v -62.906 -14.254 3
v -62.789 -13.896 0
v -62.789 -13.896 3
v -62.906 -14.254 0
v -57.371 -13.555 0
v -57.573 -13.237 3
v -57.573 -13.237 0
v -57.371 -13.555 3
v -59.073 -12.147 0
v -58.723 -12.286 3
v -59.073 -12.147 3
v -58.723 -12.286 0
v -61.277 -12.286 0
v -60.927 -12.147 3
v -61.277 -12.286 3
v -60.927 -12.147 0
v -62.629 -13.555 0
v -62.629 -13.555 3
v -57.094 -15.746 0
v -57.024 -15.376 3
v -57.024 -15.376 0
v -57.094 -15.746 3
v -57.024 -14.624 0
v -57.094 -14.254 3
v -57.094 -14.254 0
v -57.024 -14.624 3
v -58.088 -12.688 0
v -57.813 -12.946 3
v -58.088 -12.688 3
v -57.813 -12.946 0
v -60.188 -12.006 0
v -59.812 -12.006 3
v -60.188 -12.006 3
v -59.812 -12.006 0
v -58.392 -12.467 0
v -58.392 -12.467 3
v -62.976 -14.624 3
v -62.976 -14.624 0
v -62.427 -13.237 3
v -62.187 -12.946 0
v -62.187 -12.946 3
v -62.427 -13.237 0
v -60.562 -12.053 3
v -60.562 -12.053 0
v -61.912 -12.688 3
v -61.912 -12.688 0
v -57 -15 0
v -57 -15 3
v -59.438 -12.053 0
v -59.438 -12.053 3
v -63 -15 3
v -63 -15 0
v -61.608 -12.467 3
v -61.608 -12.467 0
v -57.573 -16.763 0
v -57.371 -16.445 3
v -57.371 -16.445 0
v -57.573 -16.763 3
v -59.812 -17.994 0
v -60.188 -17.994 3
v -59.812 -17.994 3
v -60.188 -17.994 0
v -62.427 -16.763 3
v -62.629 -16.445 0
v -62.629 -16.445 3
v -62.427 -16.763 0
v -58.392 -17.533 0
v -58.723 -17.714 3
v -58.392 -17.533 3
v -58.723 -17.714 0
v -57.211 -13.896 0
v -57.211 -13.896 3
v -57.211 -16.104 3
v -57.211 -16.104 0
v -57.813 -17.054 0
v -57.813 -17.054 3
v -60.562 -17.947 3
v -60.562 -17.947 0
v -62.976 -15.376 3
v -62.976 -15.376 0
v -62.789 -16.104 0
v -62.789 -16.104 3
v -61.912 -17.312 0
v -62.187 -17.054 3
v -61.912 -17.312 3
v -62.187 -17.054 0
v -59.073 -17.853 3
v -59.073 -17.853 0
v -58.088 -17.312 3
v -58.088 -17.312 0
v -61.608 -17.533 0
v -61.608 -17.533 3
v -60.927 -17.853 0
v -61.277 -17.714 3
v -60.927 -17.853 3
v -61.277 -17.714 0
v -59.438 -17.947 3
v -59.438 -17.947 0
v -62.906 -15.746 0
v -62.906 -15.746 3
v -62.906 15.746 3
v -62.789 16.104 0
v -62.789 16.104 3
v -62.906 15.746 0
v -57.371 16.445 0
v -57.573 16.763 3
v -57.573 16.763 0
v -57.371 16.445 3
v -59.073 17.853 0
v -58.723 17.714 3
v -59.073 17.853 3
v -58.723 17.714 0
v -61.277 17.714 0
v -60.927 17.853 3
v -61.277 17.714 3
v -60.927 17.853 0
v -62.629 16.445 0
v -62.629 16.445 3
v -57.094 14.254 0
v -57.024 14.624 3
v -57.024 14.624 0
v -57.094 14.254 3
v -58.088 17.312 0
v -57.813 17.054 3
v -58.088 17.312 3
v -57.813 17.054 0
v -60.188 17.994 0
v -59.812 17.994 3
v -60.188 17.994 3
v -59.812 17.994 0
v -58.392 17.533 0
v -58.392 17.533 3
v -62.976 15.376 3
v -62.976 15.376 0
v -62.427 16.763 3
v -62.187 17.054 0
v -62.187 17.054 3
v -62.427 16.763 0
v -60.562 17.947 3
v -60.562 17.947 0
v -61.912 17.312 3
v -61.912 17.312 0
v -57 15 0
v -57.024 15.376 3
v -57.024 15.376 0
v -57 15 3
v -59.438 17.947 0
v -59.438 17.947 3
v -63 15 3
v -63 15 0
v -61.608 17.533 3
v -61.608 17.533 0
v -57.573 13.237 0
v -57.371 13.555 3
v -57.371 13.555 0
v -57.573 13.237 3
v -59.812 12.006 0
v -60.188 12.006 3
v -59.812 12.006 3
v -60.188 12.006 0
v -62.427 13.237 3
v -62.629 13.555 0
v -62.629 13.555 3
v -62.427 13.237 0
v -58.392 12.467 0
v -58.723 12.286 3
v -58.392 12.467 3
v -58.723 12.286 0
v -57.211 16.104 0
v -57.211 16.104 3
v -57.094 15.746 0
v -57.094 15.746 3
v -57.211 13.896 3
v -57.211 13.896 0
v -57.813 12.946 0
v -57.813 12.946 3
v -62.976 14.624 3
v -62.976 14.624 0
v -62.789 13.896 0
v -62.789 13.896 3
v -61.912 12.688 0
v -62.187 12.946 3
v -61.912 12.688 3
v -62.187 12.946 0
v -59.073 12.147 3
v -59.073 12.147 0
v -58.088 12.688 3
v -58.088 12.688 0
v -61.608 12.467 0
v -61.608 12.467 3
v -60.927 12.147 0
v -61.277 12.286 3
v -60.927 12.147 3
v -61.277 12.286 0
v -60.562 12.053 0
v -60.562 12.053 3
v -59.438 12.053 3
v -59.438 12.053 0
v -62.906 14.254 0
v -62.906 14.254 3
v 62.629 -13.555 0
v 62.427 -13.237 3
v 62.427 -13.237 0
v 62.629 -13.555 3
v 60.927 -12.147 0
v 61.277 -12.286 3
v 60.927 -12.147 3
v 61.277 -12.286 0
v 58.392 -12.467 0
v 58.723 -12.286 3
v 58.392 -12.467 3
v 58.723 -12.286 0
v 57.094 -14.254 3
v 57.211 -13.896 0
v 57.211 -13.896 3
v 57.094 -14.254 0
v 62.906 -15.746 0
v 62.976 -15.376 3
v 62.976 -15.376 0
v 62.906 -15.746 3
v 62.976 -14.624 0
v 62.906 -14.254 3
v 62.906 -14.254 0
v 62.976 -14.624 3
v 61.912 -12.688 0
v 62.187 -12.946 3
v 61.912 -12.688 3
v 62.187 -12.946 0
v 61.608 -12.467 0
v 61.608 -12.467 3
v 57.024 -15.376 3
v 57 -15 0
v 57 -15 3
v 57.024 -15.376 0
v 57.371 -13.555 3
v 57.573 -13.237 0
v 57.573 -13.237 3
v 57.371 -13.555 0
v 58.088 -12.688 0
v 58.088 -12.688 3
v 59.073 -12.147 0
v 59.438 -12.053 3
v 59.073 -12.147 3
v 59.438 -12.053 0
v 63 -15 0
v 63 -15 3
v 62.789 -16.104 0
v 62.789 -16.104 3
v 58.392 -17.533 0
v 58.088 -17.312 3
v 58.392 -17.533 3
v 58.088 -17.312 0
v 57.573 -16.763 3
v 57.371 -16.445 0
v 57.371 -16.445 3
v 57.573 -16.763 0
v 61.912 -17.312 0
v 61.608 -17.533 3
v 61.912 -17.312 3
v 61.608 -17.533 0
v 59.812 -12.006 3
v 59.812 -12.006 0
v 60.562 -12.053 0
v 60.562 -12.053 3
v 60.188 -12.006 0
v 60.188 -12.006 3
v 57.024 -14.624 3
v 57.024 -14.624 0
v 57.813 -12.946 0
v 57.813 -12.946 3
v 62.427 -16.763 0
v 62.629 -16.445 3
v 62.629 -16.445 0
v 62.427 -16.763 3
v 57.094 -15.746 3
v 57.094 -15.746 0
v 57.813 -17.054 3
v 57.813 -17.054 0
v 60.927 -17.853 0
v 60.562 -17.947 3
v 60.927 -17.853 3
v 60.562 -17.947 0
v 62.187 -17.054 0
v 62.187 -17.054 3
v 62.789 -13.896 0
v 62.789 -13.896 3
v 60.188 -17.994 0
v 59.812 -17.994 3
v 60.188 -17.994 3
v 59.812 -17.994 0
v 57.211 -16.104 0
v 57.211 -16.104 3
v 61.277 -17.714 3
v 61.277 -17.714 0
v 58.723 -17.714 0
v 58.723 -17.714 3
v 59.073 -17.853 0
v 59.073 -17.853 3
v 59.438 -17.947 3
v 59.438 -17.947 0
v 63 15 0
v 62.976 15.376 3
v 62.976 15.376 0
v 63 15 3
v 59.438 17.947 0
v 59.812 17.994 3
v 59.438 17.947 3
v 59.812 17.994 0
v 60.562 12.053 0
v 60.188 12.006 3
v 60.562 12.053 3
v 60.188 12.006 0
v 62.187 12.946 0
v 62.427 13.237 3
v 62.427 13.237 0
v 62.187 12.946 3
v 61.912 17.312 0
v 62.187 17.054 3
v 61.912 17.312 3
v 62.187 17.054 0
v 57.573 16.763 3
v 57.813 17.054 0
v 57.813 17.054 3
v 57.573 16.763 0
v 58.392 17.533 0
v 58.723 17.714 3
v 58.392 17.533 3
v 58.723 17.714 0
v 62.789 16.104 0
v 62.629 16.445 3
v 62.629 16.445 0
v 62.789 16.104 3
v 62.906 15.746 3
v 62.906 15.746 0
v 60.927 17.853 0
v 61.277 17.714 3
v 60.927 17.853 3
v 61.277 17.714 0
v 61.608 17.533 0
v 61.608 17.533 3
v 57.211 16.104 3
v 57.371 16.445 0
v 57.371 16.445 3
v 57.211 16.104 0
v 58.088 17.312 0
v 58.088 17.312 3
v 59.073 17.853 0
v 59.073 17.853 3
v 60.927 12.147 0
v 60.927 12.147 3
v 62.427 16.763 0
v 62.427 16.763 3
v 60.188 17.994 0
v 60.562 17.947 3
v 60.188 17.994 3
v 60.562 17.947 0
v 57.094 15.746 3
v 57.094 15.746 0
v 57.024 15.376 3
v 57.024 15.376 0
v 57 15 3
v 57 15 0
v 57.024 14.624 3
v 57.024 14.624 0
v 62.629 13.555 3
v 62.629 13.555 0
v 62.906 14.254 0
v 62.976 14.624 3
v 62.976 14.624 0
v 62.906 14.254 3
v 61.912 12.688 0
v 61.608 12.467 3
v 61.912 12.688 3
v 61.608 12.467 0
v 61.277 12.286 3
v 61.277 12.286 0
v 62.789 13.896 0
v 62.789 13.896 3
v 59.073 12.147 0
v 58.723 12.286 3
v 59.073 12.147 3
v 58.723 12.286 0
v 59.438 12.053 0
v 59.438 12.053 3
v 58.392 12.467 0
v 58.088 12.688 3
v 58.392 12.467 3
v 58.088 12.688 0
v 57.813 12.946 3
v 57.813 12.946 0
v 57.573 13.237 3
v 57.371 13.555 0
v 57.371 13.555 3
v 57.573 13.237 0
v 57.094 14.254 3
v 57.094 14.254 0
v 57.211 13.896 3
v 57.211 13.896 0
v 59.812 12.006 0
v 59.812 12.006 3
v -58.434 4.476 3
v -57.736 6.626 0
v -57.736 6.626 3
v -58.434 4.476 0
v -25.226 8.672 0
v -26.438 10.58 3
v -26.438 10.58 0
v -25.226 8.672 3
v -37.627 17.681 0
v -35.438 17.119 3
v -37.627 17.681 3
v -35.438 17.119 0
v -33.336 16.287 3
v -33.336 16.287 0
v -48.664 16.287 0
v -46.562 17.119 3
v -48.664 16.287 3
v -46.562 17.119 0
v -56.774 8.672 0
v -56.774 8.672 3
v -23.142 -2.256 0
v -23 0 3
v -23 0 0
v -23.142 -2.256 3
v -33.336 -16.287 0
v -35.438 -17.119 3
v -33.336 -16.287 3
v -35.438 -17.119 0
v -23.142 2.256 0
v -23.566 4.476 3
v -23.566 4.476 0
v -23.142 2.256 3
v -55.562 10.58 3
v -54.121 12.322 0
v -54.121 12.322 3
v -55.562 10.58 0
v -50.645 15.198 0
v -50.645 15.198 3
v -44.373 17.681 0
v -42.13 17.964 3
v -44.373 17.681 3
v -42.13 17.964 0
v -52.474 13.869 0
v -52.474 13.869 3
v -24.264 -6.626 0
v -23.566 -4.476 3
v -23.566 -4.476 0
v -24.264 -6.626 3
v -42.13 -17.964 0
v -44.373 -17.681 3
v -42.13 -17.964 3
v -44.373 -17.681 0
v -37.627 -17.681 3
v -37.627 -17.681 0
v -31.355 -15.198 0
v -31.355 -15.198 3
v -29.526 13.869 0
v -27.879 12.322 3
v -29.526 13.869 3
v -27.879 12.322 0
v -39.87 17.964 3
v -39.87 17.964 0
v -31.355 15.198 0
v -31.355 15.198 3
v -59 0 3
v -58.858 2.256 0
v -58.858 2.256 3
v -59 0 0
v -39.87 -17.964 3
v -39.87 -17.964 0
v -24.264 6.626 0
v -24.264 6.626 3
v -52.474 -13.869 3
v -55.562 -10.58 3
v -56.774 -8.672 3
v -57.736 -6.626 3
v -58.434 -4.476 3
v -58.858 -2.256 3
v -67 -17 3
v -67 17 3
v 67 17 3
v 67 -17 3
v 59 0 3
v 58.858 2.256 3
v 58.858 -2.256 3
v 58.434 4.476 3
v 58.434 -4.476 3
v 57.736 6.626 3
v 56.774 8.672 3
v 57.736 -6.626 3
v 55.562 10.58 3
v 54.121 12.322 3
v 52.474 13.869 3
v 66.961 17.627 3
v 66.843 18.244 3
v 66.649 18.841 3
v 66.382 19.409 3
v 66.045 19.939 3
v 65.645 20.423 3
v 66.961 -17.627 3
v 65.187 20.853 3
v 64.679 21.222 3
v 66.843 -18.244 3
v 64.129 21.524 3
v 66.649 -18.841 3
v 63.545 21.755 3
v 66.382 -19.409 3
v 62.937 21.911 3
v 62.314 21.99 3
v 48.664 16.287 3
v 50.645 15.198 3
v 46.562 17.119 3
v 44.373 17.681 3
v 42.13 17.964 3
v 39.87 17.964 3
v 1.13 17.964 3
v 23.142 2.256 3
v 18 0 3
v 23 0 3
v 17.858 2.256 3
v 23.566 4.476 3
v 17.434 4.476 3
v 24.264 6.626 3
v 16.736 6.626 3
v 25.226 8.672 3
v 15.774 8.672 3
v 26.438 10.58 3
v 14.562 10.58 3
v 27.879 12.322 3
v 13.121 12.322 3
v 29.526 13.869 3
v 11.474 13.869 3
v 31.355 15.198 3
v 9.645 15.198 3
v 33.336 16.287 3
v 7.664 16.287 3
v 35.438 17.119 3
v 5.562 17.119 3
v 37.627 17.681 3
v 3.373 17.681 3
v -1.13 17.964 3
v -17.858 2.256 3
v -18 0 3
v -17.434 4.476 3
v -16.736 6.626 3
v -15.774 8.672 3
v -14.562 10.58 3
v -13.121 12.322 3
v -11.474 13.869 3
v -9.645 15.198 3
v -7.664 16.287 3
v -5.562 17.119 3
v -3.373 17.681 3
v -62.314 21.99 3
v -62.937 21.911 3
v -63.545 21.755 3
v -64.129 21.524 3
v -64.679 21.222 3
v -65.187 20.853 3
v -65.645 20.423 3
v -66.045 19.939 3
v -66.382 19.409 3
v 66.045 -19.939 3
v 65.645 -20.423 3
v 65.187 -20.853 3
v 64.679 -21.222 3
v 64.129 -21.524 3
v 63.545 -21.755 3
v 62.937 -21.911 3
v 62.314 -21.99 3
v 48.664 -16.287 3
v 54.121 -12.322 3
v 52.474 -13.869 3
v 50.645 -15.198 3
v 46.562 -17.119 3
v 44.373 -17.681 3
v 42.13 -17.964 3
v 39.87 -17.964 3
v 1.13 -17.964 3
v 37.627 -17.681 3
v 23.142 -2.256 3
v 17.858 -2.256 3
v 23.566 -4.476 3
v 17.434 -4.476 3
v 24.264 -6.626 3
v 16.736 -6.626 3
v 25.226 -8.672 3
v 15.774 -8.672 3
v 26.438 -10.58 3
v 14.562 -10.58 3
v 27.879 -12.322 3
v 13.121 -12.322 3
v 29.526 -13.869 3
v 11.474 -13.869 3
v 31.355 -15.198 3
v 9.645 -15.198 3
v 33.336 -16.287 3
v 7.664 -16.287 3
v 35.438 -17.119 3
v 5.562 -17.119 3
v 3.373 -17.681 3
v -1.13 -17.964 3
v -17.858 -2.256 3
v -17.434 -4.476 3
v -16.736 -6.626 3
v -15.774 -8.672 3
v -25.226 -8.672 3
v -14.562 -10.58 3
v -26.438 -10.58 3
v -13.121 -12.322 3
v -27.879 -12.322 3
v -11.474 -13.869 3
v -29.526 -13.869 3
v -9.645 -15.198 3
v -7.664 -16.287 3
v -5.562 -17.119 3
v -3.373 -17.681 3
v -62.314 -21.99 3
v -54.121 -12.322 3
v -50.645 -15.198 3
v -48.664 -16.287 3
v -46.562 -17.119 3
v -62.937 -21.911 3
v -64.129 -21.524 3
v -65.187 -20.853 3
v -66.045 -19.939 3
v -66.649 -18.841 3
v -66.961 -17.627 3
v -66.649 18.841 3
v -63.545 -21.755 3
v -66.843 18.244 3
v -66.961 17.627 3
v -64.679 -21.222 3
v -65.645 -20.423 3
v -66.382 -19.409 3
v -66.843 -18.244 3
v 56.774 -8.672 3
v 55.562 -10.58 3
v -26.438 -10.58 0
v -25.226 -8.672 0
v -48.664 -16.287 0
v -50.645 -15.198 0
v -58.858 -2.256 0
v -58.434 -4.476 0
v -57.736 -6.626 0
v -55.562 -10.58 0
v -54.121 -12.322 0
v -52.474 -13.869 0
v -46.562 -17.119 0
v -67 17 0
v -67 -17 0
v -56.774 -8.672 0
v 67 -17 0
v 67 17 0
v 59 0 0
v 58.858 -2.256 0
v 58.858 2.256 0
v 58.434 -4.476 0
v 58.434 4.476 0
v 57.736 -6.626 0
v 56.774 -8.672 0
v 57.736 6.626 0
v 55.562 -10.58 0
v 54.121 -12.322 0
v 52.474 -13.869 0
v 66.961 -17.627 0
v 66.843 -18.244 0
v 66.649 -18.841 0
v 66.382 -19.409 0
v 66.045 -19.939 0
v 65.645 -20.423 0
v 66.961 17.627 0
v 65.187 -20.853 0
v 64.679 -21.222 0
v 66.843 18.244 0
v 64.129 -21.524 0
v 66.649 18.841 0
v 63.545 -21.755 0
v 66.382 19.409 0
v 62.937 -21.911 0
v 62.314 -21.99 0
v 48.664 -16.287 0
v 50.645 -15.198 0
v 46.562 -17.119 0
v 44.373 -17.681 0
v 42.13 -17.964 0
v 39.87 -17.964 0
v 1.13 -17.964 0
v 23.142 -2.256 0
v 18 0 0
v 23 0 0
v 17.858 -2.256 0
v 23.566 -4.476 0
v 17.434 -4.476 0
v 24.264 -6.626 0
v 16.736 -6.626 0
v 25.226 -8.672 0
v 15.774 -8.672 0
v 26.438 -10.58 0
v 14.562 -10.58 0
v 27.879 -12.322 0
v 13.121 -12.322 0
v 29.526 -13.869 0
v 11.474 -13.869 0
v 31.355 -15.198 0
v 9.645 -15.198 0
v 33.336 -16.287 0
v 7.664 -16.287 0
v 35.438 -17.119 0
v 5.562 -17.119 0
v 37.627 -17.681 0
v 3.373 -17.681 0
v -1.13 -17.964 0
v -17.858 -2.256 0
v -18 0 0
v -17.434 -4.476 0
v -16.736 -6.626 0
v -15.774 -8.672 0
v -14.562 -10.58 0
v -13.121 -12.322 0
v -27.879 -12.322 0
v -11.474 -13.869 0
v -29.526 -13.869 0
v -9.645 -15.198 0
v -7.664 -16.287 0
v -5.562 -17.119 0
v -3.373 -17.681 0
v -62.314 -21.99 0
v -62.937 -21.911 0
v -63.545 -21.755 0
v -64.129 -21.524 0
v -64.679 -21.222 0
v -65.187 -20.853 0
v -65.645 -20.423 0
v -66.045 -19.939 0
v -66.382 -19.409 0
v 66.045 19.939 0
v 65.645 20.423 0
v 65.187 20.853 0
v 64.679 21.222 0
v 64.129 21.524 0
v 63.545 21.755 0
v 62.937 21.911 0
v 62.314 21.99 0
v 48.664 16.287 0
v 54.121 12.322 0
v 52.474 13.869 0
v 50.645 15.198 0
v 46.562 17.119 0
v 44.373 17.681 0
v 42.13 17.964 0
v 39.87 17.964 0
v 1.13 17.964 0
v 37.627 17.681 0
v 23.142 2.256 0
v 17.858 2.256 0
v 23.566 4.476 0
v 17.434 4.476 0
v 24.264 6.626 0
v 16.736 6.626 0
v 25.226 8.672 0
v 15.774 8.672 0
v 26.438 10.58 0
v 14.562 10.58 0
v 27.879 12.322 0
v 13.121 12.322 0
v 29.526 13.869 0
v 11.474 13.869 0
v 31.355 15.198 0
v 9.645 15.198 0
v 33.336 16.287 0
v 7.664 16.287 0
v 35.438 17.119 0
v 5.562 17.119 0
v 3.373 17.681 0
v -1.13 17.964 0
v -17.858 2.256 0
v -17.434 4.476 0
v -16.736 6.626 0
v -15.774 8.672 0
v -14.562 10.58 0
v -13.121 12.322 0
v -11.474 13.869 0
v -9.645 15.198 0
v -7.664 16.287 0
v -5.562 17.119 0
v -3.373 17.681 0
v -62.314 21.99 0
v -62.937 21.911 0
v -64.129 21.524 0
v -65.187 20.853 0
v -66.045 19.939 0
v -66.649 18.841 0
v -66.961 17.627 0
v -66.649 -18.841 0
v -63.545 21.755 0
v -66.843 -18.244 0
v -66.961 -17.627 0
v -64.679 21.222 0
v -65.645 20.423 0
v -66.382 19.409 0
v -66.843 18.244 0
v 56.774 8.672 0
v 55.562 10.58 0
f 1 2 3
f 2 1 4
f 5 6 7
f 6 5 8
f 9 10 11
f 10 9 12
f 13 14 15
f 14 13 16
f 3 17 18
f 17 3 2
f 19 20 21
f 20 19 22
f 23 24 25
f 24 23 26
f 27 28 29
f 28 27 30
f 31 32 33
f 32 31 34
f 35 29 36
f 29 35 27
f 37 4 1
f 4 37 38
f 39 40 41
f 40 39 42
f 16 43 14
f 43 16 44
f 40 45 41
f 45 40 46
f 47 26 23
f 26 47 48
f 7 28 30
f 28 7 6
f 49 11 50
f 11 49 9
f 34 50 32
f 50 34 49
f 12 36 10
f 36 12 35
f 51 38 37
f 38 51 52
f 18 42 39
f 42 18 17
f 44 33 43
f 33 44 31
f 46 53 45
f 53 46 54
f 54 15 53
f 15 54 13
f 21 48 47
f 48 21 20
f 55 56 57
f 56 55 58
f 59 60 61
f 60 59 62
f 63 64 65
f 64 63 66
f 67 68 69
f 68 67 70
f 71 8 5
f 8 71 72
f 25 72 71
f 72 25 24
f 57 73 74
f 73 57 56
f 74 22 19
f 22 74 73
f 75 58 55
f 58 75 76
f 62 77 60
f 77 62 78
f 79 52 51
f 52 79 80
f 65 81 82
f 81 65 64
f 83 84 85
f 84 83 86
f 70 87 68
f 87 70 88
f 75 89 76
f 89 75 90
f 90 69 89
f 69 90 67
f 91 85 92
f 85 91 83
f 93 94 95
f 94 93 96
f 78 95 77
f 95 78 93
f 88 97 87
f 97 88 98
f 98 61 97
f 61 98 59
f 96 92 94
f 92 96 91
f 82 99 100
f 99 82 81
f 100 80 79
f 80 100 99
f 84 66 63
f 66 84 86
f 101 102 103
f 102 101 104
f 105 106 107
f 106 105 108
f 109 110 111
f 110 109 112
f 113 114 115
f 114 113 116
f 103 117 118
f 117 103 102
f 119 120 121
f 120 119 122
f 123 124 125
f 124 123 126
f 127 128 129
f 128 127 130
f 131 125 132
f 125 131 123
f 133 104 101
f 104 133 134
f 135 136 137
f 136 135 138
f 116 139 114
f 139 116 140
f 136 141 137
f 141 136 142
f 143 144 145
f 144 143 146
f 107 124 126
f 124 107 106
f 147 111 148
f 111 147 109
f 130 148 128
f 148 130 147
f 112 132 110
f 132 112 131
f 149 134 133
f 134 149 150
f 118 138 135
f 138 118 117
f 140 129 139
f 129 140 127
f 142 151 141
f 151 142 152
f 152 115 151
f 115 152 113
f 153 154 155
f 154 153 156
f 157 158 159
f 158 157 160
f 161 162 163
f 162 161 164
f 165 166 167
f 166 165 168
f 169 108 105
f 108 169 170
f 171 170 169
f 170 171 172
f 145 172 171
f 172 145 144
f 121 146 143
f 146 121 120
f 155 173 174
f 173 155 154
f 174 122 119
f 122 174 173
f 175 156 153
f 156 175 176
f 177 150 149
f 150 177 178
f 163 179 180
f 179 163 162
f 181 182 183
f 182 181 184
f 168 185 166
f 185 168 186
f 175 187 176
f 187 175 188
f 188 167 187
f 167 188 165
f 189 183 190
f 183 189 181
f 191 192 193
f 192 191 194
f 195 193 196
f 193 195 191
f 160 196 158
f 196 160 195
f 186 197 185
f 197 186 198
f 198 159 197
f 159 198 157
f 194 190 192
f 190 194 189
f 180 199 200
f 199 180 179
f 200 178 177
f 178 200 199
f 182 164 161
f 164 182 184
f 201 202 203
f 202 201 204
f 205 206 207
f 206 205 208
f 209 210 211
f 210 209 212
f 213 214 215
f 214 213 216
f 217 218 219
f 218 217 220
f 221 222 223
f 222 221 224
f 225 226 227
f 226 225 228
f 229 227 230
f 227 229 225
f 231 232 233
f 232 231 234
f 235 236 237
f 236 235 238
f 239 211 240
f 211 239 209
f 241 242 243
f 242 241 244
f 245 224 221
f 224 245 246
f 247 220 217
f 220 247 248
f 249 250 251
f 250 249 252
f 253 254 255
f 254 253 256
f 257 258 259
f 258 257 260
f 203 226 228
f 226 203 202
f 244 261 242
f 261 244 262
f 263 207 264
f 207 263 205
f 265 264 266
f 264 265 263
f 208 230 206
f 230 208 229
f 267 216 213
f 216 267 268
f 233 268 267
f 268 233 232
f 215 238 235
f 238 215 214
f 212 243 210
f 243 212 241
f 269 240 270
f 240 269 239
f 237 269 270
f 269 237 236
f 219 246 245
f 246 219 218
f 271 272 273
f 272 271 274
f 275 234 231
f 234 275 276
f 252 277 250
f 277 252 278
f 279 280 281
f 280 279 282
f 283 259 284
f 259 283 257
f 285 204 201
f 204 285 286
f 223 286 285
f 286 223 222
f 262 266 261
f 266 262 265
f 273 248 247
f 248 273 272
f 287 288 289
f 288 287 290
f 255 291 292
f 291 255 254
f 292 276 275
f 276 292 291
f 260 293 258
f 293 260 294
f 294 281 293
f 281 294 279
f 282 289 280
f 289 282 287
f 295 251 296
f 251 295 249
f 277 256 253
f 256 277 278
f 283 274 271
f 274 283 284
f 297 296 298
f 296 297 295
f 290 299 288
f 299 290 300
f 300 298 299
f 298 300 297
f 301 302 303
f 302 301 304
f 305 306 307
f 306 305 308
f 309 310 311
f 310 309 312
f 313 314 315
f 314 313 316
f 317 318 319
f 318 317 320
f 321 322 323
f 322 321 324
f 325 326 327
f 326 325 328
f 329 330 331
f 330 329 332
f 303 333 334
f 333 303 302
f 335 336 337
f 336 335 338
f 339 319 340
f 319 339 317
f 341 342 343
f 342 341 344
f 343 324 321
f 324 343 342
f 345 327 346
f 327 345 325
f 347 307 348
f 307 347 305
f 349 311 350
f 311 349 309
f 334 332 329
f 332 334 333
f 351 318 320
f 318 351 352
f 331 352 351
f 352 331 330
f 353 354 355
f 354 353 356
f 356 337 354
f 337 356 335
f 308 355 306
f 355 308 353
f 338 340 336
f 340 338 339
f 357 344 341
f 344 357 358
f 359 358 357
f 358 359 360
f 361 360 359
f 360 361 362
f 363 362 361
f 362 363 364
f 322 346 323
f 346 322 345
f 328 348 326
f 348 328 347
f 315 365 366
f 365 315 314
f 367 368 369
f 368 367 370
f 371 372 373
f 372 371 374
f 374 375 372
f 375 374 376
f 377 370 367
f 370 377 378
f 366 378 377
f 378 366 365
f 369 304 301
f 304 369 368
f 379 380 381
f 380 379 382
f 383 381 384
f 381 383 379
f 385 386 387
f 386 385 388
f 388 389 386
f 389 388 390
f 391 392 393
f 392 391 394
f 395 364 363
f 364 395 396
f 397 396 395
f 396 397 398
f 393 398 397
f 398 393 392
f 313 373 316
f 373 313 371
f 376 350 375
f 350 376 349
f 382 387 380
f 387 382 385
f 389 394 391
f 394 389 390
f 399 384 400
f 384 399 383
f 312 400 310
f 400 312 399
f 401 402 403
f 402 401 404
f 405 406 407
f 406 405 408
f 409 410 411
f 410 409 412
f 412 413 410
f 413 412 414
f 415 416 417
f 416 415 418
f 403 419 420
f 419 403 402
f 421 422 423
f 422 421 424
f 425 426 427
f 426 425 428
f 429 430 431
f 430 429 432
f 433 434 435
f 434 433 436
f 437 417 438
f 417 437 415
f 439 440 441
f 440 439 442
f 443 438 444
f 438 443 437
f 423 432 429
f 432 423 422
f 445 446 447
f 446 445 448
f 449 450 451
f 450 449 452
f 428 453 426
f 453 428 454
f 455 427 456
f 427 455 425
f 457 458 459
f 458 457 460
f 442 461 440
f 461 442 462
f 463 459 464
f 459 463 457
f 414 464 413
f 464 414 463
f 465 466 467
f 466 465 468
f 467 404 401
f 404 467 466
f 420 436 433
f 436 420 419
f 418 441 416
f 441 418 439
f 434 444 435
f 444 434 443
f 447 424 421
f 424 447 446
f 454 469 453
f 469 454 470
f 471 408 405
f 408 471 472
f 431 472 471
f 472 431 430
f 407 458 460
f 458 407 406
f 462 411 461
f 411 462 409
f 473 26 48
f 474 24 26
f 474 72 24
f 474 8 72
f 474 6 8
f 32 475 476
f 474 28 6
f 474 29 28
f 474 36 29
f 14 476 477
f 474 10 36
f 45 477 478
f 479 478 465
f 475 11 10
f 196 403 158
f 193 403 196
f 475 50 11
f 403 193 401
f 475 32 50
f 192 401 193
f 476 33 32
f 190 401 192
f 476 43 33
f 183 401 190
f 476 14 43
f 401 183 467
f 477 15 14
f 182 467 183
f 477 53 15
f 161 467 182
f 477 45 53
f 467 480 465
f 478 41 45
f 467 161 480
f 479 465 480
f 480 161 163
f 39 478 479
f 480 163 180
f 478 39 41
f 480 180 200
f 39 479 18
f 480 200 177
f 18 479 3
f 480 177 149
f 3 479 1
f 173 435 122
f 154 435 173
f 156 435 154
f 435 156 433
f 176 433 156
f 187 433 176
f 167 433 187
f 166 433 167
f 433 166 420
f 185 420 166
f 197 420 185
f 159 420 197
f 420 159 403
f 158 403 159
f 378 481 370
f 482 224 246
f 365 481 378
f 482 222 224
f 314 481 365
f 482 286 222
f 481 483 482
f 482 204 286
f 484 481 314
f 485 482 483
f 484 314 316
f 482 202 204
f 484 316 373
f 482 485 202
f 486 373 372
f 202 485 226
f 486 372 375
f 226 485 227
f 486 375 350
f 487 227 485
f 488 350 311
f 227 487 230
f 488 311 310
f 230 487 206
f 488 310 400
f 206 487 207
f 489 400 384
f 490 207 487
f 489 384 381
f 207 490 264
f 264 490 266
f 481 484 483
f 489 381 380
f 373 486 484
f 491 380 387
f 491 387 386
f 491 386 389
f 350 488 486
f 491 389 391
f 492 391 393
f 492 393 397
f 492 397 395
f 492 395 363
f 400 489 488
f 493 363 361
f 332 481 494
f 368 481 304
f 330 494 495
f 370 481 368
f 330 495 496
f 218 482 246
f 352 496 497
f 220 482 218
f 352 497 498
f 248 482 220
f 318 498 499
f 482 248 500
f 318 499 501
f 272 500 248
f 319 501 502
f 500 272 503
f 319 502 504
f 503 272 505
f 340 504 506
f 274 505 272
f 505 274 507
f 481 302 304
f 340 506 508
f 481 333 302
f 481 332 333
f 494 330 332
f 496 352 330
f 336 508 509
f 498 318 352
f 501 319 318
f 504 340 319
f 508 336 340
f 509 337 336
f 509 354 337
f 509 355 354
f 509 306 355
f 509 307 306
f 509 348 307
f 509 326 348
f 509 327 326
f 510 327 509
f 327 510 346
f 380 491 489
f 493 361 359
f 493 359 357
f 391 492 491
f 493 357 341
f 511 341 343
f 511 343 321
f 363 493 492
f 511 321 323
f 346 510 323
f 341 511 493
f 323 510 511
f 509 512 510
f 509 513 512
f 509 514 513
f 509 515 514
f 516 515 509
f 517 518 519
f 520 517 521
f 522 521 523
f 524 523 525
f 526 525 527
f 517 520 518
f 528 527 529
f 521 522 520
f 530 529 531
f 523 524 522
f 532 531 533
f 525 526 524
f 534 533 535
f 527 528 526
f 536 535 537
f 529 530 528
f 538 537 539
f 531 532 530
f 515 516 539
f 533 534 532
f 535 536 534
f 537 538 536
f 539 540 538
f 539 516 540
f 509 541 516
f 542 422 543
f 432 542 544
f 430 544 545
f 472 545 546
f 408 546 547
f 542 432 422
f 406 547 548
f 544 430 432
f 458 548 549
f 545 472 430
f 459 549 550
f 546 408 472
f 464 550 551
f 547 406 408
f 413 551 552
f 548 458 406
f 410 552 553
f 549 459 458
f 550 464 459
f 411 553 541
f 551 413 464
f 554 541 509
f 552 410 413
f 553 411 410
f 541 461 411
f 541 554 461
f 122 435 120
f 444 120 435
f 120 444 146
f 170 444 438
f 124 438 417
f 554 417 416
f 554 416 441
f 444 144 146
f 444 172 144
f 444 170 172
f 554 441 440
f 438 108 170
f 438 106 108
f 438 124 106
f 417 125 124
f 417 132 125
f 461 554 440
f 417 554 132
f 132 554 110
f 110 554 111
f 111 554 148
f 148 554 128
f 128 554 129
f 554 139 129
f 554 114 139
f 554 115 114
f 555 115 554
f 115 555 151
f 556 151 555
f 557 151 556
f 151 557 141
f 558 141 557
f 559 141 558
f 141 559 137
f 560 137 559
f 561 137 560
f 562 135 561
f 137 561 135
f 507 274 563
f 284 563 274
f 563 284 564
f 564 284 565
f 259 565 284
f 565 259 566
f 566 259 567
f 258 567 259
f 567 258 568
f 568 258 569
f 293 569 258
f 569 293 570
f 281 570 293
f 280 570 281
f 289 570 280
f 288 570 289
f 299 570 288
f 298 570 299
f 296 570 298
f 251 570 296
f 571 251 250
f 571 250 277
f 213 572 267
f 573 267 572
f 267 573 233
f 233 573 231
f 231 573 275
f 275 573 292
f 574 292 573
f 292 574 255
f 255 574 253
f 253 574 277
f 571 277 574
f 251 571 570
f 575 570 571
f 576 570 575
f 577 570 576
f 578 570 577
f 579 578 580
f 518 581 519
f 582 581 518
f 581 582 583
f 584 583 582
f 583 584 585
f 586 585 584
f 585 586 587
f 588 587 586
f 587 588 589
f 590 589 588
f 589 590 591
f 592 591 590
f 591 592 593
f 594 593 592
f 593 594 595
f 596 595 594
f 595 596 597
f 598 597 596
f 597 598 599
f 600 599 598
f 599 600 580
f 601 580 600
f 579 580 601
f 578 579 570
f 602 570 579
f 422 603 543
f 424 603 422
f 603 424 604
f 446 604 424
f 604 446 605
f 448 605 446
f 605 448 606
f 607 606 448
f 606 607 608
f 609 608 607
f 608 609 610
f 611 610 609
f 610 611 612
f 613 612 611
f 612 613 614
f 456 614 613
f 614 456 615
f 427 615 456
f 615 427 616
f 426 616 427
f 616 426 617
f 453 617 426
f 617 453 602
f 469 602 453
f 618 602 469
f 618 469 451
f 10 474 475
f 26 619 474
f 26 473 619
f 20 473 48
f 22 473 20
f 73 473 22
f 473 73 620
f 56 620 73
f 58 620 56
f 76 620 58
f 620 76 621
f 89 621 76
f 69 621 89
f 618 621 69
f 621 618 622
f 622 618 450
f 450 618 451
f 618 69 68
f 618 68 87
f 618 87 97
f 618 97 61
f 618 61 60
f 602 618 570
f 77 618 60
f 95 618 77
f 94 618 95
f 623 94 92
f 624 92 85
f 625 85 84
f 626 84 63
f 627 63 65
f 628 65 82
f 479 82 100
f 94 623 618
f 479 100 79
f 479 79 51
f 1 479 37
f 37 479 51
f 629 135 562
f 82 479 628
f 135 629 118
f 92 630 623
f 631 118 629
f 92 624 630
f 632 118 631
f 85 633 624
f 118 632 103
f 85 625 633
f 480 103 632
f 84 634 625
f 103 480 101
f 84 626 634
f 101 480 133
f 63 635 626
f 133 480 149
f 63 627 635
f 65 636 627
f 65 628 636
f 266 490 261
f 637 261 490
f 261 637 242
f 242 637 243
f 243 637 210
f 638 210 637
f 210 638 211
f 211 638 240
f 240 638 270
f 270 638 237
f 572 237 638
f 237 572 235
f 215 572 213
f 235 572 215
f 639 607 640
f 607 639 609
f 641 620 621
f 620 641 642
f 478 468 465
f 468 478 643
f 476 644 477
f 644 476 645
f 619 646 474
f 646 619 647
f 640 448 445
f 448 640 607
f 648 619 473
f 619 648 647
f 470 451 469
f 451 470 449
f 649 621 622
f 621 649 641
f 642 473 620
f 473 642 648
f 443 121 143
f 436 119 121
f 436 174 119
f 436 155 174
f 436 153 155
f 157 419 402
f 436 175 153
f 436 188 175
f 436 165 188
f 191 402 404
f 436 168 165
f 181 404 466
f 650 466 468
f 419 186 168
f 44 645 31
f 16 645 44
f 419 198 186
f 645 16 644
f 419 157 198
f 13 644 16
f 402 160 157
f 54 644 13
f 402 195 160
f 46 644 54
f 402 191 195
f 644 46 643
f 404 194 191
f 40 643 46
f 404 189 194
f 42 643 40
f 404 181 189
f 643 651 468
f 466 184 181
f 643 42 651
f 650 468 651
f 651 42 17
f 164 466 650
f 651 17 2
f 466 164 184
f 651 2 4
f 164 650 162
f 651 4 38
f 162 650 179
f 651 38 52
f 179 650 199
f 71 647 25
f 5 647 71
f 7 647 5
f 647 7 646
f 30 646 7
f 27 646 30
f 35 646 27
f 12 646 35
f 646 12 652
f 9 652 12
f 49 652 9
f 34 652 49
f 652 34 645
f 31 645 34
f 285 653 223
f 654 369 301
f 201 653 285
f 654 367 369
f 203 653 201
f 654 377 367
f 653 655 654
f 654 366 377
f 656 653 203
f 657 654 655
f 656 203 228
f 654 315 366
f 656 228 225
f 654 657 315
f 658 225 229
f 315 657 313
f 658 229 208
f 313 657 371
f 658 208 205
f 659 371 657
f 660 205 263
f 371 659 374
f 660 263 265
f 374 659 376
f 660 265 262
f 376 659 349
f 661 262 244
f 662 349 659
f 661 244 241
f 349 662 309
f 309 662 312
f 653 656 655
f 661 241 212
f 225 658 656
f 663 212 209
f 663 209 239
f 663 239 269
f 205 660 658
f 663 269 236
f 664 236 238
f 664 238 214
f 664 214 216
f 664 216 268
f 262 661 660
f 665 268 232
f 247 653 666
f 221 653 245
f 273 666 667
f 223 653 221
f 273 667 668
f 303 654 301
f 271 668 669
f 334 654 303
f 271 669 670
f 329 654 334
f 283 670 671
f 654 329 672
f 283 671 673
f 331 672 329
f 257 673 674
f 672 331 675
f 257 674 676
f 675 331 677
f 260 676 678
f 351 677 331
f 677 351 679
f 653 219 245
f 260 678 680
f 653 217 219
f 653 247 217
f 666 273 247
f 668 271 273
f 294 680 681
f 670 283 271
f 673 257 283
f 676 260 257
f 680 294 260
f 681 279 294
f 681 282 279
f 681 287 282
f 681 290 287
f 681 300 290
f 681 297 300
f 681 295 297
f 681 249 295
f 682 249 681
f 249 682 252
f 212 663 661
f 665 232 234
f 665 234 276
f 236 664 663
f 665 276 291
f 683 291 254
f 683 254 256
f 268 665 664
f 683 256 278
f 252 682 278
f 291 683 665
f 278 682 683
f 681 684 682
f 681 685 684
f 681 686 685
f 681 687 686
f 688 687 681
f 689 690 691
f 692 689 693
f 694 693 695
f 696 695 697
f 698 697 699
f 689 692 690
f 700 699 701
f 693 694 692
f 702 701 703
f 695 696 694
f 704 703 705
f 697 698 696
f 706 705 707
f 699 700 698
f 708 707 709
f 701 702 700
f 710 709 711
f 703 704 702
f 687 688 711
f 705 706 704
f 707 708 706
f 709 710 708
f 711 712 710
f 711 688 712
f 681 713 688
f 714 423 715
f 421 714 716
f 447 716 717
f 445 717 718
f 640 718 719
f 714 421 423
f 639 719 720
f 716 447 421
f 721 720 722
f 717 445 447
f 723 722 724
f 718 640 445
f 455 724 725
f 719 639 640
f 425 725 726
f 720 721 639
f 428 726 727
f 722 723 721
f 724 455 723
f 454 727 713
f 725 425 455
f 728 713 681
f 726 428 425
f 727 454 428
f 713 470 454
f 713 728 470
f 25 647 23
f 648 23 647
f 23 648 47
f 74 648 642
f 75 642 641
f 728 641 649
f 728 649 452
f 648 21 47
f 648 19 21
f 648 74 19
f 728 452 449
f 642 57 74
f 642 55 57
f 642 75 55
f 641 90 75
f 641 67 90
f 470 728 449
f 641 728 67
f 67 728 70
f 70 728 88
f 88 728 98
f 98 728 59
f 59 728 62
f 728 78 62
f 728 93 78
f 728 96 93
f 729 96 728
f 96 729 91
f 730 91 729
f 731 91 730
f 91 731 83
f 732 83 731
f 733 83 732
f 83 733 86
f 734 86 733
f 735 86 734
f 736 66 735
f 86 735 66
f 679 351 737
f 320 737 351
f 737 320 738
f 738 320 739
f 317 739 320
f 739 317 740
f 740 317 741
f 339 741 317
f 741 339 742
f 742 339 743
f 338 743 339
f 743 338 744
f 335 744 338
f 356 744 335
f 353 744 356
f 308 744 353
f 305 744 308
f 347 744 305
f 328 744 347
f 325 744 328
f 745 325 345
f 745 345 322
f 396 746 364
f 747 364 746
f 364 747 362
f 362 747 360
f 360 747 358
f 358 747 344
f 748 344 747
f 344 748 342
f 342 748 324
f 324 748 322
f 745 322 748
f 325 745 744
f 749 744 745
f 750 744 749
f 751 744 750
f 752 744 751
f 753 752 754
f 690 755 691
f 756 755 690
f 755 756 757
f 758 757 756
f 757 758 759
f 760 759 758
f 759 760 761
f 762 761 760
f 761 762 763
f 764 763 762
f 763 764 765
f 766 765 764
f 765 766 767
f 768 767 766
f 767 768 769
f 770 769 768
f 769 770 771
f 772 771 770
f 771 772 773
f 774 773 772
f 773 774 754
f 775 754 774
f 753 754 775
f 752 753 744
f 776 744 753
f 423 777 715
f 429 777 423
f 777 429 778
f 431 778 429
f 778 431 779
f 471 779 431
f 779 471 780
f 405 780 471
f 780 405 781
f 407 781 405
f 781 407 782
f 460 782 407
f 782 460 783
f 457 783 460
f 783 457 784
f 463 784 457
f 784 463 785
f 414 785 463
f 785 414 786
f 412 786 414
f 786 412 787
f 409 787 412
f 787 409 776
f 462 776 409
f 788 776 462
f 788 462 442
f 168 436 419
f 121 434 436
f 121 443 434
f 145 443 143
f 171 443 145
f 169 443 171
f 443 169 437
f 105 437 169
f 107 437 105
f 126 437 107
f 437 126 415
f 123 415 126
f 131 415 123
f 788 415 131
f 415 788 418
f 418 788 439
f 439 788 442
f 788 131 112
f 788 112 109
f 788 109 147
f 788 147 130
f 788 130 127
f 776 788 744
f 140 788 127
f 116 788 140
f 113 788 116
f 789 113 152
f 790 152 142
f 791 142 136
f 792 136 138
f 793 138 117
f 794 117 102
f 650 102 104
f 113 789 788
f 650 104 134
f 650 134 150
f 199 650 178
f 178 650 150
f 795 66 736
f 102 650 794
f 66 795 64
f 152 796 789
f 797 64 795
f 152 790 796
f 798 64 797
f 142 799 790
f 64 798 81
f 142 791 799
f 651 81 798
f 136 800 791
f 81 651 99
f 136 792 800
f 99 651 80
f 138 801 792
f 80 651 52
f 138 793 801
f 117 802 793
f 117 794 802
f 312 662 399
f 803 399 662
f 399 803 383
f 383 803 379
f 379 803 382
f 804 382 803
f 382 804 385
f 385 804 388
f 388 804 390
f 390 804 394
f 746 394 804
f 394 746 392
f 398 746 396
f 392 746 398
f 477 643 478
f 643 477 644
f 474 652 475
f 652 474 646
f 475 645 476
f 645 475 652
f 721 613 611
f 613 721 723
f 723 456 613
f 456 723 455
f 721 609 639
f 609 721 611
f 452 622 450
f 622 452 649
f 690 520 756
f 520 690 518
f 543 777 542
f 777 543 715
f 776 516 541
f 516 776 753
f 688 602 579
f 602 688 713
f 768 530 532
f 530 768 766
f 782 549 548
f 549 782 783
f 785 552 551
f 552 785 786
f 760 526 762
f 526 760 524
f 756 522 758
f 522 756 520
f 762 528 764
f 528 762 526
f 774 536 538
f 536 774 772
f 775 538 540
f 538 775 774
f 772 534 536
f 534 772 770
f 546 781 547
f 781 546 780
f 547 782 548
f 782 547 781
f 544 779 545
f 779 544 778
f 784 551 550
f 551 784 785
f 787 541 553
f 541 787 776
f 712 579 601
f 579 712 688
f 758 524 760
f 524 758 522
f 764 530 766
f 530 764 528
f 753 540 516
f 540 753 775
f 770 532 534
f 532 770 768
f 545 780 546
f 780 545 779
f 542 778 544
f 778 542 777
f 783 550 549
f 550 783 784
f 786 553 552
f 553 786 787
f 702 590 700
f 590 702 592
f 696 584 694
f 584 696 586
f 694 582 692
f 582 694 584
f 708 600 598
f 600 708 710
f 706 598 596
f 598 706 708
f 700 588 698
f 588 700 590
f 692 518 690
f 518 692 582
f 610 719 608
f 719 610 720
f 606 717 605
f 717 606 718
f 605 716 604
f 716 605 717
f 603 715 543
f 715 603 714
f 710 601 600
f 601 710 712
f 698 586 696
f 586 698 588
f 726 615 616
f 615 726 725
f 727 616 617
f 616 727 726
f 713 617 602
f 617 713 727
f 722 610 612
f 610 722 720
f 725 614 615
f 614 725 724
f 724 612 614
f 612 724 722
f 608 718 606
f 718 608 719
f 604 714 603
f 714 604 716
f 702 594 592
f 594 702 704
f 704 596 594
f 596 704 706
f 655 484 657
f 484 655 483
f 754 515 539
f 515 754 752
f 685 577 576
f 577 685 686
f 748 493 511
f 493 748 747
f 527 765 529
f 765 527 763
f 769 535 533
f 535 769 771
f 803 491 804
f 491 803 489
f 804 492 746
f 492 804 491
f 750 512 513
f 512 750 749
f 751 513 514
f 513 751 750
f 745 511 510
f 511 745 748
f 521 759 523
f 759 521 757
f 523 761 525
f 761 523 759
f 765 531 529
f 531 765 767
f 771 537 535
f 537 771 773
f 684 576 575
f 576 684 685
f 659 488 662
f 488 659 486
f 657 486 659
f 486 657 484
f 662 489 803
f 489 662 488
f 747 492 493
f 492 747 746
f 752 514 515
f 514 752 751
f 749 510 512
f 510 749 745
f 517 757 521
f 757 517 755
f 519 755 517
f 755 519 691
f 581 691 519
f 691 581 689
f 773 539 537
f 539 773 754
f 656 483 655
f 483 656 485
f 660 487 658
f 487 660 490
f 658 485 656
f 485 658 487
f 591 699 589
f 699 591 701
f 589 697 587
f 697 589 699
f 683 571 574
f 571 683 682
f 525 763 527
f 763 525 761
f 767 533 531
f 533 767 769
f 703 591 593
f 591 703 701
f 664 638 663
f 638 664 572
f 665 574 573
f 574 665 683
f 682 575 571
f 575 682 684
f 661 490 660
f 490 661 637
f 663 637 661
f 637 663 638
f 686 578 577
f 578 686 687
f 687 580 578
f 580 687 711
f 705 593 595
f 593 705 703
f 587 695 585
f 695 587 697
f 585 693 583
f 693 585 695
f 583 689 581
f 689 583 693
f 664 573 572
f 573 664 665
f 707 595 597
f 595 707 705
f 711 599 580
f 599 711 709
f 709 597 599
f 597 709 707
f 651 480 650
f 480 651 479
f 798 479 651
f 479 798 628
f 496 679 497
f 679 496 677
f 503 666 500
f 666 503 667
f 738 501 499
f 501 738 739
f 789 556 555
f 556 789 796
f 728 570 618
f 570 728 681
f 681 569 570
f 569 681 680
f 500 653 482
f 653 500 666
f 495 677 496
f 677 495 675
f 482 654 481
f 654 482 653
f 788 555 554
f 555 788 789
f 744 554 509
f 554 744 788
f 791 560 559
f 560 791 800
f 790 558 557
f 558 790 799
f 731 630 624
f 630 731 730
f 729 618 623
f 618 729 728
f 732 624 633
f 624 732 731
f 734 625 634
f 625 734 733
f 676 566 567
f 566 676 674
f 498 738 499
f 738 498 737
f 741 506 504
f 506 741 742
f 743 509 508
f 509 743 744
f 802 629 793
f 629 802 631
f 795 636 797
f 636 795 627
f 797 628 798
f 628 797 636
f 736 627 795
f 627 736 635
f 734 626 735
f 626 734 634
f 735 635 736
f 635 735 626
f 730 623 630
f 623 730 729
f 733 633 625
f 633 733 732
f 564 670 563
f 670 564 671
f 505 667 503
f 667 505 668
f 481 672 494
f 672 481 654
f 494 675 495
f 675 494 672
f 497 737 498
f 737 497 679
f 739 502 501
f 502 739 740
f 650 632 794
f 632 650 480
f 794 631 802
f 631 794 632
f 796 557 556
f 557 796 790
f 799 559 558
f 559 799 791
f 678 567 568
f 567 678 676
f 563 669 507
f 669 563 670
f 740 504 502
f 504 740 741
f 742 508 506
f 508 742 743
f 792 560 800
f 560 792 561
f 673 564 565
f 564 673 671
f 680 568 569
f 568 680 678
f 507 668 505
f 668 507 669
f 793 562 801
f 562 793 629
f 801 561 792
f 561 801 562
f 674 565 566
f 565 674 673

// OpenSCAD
$fn = 50;


difference() {
	union() {
		hull() {
			translate(v = [-62.0000000000, 17.0000000000, 0]) {
				cylinder(h = 3, r = 5);
			}
			translate(v = [62.0000000000, 17.0000000000, 0]) {
				cylinder(h = 3, r = 5);
			}
			translate(v = [-62.0000000000, -17.0000000000, 0]) {
				cylinder(h = 3, r = 5);
			}
			translate(v = [62.0000000000, -17.0000000000, 0]) {
				cylinder(h = 3, r = 5);
			}
		}
	}
	union() {
		#translate(v = [-60.0000000000, -15.0000000000, -100.0000000000]) {
			cylinder(h = 200, r = 3.0000000000);
		}
		#translate(v = [-60.0000000000, 15.0000000000, -100.0000000000]) {
			cylinder(h = 200, r = 3.0000000000);
		}
		#translate(v = [60.0000000000, -15.0000000000, -100.0000000000]) {
			cylinder(h = 200, r = 3.0000000000);
		}
		#translate(v = [60.0000000000, 15.0000000000, -100.0000000000]) {
			cylinder(h = 200, r = 3.0000000000);
		}
		#translate(v = [-41.0000000000, 0, 0]) {
			cylinder(h = 3, r = 18.0000000000);
		}
		#cylinder(h = 3, r = 18.0000000000);
		#translate(v = [41.0000000000, 0, 0]) {
			cylinder(h = 3, r = 18.0000000000);
		}
	}
}
